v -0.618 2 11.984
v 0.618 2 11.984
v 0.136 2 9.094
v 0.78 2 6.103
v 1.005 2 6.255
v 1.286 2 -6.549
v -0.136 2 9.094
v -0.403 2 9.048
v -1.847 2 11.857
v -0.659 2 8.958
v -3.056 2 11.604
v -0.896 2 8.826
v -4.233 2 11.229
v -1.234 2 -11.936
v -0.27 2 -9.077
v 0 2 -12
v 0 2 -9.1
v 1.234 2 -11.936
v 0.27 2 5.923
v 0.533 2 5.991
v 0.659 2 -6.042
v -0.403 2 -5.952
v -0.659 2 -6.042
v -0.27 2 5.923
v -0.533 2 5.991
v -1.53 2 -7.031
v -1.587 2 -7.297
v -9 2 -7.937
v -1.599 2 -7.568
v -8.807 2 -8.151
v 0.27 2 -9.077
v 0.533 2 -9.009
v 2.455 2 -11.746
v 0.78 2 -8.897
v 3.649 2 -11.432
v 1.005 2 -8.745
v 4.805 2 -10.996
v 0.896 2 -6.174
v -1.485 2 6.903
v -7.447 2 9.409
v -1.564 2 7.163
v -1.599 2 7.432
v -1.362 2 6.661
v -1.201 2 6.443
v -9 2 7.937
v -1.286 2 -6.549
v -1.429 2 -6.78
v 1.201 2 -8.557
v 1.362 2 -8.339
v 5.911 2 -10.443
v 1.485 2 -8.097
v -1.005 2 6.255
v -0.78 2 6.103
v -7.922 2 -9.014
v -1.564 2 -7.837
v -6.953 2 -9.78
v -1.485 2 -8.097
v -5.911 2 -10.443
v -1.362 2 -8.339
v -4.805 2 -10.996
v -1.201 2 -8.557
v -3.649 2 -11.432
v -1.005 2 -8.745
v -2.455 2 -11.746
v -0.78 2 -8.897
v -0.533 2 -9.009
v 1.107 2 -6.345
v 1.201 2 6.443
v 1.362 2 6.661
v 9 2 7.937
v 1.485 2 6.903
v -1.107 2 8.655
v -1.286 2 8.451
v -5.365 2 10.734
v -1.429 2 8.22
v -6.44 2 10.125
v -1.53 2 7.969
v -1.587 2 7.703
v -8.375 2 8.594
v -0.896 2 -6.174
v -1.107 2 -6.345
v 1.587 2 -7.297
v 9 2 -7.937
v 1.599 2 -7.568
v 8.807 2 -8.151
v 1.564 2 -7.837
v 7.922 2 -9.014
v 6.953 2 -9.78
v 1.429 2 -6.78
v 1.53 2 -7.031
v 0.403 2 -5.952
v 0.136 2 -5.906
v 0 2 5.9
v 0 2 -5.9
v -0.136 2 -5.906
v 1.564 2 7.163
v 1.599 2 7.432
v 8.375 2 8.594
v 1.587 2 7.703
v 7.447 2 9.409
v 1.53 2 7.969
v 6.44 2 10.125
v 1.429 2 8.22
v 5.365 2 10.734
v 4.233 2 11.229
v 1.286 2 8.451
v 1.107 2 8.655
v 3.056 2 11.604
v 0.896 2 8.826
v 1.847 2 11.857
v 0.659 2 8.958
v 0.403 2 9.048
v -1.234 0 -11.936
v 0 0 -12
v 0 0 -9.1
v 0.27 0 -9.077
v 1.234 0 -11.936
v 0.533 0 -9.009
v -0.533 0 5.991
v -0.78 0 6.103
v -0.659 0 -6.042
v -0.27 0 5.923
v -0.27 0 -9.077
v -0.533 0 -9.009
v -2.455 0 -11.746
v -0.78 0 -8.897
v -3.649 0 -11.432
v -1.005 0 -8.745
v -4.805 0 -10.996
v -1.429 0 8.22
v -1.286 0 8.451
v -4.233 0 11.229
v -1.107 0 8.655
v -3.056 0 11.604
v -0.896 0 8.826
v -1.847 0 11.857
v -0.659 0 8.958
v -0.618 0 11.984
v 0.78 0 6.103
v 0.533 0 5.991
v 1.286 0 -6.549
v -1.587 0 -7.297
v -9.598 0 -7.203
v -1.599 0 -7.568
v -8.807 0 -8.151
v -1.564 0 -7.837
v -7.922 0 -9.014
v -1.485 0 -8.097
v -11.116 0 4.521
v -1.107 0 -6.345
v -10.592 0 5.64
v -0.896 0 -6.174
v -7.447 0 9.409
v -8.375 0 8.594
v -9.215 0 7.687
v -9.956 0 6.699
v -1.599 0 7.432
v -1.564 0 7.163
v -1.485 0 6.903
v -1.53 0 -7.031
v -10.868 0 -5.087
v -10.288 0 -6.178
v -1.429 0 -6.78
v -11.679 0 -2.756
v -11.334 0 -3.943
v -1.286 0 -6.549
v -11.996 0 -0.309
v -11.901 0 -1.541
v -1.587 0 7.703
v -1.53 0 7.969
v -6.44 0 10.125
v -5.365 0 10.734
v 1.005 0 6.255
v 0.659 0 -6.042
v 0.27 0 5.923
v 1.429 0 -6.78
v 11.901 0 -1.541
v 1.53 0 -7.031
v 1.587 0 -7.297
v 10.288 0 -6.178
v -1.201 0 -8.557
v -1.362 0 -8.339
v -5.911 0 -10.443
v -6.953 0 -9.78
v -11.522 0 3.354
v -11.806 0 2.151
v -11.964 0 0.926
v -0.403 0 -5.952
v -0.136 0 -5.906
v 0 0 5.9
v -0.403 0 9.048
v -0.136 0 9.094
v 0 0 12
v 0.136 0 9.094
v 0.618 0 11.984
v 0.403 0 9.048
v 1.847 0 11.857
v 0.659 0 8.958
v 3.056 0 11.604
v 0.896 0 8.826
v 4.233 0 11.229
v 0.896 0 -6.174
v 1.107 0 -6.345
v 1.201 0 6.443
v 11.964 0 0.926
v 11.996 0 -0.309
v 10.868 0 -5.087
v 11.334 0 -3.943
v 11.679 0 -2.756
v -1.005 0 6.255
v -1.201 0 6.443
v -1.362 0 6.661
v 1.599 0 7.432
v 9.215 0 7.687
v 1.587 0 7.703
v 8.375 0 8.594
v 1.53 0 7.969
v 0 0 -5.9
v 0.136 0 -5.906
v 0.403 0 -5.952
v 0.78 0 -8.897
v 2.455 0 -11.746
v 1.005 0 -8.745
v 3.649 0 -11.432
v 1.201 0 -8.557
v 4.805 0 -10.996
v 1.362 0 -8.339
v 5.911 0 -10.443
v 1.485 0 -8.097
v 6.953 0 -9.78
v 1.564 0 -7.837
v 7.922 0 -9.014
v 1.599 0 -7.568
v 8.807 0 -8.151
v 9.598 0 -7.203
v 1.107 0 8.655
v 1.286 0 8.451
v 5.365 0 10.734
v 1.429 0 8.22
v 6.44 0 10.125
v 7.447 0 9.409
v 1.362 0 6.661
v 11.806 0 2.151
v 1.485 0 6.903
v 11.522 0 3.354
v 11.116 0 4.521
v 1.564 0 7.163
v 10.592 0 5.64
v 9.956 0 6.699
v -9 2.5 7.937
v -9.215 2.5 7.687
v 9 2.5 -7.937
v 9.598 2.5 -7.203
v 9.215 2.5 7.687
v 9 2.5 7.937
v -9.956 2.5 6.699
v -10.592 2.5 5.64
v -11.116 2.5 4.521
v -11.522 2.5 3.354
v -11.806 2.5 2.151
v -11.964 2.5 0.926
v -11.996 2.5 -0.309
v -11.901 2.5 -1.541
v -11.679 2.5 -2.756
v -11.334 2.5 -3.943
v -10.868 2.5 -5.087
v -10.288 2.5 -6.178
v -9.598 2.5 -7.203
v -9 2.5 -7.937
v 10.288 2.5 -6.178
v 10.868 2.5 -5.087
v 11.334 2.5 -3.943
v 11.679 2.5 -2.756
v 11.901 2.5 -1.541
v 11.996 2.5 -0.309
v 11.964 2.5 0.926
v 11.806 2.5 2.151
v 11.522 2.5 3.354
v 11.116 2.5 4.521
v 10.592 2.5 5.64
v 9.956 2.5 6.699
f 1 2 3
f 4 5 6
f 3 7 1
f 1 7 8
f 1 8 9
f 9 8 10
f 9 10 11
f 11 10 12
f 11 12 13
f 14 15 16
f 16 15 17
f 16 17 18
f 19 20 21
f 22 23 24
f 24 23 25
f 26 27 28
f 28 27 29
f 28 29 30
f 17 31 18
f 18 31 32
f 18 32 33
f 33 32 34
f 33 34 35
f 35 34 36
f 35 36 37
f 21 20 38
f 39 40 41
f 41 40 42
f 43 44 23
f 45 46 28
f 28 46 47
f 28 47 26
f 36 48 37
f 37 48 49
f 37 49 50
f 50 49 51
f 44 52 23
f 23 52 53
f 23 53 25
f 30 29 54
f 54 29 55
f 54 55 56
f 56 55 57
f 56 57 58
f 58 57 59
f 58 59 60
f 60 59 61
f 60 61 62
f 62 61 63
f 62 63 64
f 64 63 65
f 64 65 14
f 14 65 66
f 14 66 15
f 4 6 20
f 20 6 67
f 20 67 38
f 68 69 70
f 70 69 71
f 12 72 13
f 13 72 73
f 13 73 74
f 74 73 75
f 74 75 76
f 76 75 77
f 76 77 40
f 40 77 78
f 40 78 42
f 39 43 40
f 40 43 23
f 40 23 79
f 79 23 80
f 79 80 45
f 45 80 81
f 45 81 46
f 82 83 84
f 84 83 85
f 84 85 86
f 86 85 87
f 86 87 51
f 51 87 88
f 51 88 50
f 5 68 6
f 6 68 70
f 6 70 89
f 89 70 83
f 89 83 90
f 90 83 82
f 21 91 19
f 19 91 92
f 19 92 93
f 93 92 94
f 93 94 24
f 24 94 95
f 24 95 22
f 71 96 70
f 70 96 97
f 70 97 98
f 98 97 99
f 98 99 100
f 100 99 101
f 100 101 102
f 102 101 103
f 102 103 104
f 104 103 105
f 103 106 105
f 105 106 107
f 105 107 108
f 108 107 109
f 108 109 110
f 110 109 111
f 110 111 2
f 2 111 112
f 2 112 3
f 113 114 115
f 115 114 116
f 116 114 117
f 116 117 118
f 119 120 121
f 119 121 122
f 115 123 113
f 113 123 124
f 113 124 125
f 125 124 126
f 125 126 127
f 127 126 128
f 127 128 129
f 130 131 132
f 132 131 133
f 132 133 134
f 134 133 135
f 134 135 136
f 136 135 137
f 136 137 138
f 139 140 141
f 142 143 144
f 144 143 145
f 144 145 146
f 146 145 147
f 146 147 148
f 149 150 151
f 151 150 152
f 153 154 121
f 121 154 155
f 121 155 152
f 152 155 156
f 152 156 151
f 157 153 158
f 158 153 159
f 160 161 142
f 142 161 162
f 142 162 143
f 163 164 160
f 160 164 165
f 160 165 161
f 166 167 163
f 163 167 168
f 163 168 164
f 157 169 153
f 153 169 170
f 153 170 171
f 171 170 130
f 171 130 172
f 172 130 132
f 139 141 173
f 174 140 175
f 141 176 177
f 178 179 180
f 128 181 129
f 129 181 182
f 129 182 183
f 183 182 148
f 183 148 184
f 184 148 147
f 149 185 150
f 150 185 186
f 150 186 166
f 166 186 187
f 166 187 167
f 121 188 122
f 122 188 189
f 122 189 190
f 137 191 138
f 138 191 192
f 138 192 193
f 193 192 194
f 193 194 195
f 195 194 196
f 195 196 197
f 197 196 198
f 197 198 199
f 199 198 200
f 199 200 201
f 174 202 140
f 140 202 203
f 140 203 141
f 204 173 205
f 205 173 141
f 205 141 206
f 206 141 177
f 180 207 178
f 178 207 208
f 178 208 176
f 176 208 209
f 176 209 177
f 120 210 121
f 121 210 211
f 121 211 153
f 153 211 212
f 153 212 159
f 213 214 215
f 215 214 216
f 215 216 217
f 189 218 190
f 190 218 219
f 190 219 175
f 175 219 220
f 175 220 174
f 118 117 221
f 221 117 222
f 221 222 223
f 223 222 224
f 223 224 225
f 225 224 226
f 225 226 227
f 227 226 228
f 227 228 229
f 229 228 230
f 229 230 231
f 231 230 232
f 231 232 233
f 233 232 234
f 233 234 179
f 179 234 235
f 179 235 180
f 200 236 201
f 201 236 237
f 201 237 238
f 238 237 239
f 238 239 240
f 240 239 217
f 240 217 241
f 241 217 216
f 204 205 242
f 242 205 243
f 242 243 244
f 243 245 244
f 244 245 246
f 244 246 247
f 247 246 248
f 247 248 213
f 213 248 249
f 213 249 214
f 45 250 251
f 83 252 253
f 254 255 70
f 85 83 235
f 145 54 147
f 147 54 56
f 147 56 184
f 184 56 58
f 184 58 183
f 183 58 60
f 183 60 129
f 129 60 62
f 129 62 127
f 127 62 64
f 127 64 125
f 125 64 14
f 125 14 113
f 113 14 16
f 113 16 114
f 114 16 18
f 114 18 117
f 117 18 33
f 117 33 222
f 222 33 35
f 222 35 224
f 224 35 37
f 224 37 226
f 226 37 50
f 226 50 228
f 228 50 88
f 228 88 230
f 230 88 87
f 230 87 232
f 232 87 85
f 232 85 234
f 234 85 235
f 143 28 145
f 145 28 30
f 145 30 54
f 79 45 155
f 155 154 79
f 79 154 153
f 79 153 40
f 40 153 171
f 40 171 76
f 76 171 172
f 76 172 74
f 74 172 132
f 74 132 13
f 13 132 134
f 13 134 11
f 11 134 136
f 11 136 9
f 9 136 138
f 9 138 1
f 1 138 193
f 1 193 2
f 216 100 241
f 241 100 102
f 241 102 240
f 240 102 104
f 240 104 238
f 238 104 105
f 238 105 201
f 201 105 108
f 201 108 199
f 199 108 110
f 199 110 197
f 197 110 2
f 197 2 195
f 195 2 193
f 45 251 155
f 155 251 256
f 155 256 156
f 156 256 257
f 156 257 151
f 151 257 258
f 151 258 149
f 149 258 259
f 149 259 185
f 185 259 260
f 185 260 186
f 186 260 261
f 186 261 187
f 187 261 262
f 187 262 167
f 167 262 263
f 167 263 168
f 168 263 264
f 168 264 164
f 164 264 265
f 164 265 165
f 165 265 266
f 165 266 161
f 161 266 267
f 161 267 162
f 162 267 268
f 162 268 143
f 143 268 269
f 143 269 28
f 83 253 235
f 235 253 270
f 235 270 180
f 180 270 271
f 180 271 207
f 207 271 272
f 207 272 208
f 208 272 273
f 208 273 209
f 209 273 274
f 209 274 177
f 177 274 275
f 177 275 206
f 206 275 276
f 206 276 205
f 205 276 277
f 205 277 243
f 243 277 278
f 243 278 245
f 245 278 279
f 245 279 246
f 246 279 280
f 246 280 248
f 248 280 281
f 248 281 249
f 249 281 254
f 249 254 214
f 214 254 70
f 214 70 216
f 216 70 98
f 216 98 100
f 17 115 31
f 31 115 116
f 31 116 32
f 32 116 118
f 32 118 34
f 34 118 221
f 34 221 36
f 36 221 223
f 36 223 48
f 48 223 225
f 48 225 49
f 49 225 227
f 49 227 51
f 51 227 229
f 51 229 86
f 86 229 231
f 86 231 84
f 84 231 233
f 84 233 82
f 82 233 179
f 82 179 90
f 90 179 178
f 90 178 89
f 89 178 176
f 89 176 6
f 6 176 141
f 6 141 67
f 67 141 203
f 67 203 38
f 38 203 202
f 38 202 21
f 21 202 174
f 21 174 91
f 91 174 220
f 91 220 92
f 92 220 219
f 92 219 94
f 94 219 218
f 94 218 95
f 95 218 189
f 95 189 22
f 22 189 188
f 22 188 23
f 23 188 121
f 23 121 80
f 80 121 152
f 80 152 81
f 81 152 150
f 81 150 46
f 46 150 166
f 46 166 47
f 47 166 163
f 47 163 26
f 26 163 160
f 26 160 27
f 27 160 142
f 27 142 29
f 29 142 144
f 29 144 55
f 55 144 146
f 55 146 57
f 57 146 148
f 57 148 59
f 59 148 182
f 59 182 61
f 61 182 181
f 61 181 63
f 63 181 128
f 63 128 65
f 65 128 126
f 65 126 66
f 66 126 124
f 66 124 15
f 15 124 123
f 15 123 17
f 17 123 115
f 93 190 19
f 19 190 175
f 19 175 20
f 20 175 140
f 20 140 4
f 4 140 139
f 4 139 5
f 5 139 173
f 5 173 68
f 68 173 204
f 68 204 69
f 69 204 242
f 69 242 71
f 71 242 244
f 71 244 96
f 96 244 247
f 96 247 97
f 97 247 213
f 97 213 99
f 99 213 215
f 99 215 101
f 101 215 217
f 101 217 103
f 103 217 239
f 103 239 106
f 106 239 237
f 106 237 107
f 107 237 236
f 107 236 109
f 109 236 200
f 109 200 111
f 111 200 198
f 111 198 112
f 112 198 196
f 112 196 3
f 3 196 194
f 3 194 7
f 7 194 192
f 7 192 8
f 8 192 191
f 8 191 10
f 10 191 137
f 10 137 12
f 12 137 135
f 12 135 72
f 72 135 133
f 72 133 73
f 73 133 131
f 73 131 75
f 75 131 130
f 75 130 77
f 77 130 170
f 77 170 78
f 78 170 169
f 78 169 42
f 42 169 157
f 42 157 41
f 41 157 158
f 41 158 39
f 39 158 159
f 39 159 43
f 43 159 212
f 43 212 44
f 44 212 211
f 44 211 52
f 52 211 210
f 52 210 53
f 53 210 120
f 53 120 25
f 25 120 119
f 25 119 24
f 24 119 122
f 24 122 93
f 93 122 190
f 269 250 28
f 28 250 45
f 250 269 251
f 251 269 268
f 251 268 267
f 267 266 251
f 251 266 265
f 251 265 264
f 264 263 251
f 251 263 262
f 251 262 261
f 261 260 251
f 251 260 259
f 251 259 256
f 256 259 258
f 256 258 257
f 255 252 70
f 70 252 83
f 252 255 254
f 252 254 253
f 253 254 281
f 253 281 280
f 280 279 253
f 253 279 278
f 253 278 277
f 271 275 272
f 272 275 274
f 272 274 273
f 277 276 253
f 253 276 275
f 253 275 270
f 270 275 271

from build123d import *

# Parameters (mm, degrees)
SKETCH_1_R      = 12
SKETCH_1_R_2    = 1.6
EXTRUDE_1_DEPTH = 2
EXTRUDE_2_DEPTH = 0.5


with BuildPart() as part:
    # 草图1 → 凸台-拉伸1 (new body)
    with BuildSketch(Plane(origin=(0, 0, 0), x_dir=(1, 0, 0), z_dir=(0, 1, 0))):
        with Locations(Location((0, 0, 0), (0, 0, 270))):
            Circle(SKETCH_1_R)
        with Locations(Location((0, 7.5, 0), (0, 0, 270))):
            Circle(SKETCH_1_R_2, mode=Mode.SUBTRACT)
        with Locations(Location((0, -7.5, 0), (0, 0, 90))):
            Circle(SKETCH_1_R_2, mode=Mode.SUBTRACT)
    extrude(amount=EXTRUDE_1_DEPTH)

    # 草图2 → 凸台-拉伸2 (add)
    with BuildSketch(Plane(origin=(0, 2, 0), x_dir=(1, 0, 0), z_dir=(0, 1, 0))):
        with BuildLine():
            Line((-9, 7.937253933), (-9, -7.937253933))
            ThreePointArc((-9, -7.937253933), (-12, 0), (-9, 7.937253933))
        make_face()
    extrude_2 = extrude(amount=EXTRUDE_2_DEPTH)

    # 镜向2: 凸台-拉伸2 across plane
    add(extrude_2.mirror(Plane(origin=(0, 0, 0), x_dir=(0, 0, 1), z_dir=(1, 0, 0))))


solid = part.part
